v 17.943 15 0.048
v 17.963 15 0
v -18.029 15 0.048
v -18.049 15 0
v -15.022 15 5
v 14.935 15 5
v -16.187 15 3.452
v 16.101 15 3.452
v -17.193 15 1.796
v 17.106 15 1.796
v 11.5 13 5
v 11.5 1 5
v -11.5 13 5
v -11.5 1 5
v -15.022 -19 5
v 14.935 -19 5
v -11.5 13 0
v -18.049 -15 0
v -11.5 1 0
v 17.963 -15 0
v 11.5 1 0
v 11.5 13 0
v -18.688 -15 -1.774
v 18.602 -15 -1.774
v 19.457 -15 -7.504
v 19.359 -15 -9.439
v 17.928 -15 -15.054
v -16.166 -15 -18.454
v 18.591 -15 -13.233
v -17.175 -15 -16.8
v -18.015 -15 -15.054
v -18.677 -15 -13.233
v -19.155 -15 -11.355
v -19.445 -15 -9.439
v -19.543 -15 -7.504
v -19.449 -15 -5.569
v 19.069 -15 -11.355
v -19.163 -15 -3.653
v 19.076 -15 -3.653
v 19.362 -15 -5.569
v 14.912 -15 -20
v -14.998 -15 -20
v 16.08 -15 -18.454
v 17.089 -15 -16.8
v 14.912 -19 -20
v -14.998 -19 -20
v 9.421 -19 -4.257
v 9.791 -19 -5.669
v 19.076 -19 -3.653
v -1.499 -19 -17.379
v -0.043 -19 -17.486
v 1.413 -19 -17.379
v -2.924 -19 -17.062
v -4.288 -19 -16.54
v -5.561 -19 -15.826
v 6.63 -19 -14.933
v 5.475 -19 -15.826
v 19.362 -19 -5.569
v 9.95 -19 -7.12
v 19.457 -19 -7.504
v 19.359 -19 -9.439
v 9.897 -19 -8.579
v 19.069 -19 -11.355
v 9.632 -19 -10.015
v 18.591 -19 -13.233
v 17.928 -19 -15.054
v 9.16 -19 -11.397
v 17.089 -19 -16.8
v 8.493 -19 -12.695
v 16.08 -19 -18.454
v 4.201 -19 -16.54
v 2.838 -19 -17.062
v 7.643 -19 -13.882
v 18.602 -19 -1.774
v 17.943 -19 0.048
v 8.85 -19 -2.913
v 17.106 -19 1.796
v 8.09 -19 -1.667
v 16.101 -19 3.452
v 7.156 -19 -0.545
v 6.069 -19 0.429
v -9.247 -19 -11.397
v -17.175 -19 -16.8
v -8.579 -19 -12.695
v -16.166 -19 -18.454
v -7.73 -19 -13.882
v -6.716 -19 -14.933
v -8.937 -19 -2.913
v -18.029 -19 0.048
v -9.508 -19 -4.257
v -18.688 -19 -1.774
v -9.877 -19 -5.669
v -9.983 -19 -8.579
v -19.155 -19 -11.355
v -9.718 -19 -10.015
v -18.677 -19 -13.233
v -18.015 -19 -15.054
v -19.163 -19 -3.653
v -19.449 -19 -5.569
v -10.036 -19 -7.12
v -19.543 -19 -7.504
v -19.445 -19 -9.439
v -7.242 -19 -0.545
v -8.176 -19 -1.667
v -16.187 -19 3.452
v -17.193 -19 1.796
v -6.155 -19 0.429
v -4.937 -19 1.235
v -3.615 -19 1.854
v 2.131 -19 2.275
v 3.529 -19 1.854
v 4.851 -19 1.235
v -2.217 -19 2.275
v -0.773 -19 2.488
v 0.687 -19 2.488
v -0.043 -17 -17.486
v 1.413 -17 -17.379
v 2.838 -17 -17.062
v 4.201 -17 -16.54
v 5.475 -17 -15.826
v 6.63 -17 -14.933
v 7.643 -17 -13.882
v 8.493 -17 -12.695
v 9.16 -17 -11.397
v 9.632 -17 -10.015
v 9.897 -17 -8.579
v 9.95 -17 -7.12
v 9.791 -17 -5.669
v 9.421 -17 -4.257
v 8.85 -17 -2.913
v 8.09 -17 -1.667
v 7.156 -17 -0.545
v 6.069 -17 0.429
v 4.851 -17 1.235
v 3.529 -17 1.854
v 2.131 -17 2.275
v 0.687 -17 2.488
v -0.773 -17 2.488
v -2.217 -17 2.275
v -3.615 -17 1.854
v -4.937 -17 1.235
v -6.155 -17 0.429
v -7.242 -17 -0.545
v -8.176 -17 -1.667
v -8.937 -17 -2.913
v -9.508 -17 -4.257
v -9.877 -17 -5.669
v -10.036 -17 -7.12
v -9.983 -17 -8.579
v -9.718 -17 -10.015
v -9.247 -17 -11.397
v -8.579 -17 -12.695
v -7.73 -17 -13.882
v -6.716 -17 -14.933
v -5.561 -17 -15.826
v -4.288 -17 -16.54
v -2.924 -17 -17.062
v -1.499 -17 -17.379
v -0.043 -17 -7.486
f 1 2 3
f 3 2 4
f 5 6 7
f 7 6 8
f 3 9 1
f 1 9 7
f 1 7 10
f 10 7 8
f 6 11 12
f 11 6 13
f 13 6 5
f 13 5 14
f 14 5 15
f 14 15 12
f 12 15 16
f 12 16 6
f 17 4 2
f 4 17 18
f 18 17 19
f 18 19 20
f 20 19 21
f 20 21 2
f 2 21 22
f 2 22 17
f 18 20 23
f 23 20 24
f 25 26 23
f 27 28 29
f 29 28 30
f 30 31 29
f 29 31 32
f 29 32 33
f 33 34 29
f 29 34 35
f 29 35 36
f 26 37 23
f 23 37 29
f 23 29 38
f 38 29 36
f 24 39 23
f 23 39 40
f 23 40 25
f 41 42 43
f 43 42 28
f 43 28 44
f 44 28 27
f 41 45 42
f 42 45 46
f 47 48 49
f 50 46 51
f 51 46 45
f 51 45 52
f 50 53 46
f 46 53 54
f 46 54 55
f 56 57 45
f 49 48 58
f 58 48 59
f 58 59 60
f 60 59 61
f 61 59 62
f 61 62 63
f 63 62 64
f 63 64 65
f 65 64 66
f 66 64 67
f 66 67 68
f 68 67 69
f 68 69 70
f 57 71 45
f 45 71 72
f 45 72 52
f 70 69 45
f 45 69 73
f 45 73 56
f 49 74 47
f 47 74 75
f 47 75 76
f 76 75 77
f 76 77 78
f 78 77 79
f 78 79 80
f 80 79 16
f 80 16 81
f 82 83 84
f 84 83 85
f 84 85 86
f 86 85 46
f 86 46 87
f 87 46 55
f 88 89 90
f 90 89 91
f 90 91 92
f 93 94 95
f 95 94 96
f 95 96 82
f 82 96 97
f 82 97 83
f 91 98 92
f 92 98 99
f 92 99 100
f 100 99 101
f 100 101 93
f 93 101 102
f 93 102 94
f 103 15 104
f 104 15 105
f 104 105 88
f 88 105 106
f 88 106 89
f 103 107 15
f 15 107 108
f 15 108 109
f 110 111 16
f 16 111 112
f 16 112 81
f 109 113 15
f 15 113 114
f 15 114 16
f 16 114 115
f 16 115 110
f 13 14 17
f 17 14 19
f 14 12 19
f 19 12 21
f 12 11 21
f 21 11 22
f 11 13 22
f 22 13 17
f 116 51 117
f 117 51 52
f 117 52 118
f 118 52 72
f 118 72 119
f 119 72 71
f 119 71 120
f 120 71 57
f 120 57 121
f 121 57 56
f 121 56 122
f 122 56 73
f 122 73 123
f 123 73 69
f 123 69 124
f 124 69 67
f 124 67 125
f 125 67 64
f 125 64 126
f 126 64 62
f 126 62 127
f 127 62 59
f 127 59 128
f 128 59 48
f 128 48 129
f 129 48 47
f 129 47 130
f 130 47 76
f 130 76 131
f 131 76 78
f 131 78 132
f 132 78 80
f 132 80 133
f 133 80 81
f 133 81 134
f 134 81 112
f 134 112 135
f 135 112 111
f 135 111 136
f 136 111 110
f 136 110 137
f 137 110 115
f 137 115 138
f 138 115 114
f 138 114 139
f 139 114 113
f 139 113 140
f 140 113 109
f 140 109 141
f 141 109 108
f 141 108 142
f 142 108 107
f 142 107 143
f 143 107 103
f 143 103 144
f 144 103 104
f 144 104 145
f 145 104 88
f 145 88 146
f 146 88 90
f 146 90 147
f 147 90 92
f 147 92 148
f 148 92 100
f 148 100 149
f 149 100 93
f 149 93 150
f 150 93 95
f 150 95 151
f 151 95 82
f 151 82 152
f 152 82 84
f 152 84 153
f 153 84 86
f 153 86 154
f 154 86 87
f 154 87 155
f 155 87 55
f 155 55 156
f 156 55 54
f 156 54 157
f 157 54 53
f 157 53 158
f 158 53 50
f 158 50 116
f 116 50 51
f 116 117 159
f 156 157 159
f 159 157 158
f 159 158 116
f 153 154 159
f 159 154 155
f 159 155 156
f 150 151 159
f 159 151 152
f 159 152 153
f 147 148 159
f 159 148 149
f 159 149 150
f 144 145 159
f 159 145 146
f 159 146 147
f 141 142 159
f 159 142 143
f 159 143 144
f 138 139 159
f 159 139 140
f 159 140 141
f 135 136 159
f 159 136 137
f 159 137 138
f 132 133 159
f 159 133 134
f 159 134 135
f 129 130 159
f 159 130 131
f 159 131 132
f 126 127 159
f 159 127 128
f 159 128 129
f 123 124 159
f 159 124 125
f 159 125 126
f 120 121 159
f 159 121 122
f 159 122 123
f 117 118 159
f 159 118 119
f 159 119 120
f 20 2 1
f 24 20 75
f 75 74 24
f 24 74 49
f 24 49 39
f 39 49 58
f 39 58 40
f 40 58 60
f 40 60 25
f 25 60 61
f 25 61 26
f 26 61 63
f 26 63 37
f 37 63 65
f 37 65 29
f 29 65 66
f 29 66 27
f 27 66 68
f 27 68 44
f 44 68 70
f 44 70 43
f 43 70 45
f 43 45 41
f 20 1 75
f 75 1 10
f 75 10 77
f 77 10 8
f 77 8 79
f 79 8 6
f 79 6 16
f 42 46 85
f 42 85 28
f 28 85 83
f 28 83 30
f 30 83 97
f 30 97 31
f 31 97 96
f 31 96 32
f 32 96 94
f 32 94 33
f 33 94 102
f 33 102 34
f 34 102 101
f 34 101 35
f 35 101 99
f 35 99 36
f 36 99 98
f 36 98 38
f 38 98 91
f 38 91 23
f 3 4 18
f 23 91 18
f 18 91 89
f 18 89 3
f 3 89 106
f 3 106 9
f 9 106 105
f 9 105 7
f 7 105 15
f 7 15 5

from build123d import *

# Parameters (mm, degrees)
ESQUISSE1_W             = 40
ESQUISSE1_H             = 30
BOSS_EXTRU_1_DEPTH      = 5
ESQUISSE4_W             = 40
ESQUISSE4_H             = 25
BOSS_EXTRU_2_DEPTH      = 4
ESQUISSE5_W             = 23
ESQUISSE5_H             = 12
ENL_V_MAT_EXTRU_2_DEPTH = 5
ESQUISSE6_R             = 10
ENL_V_MAT_EXTRU_3_DEPTH = 2
ENL_V_START             = -34
ENL_V_MAT_EXTRU_4_DEPTH = 34


# Read off the part's stored shape, not the designer's step: Enlèv. mat.-Extru.4
with BuildPart() as part:
    # Esquisse1 → Boss.-Extru.1 (new body)
    with BuildSketch(Plane.XY):
        Rectangle(ESQUISSE1_W, ESQUISSE1_H)
    extrude(amount=BOSS_EXTRU_1_DEPTH)

    # Esquisse4 → Boss.-Extru.2 (add)
    with BuildSketch(Plane.XZ.offset(15)):
        with Locations((0, -7.5)):
            Rectangle(ESQUISSE4_W, ESQUISSE4_H)
    extrude(amount=BOSS_EXTRU_2_DEPTH)

    # Esquisse5 → Enlèv. mat.-Extru.2 (cut)
    with BuildSketch(Plane(origin=(0, 0, 0), x_dir=(-1, 0, 0), z_dir=(0, 0, -1))):
        with Locations((0, 7)):
            Rectangle(ESQUISSE5_W, ESQUISSE5_H)
    extrude(amount=-ENL_V_MAT_EXTRU_2_DEPTH, mode=Mode.SUBTRACT)

    # Esquisse6 → Enlèv. mat.-Extru.3 (cut)
    with BuildSketch(Plane.XZ.offset(19)):
        with Locations(Location((-0.043131573, -7.485697827, 0), (0, 0, 270))):
            Circle(ESQUISSE6_R)
    extrude(amount=-ENL_V_MAT_EXTRU_3_DEPTH, mode=Mode.SUBTRACT)

    # Enlèv. mat.-Extru.4 outline → Enlèv. mat.-Extru.4 (cut)
    with BuildSketch(Plane.XZ.offset(19).offset(ENL_V_START)):
        with BuildLine():
            ThreePointArc((14.935431434, 5), (19.456859524, -7.504332113), (14.911541313, -20))
            Line((14.911541313, -20), (20, -20))
            Line((20, -20), (20, 5))
            Line((20, 5), (14.935431434, 5))
        make_face()
        with BuildLine():
            Line((-20, -20), (-14.997804459, -20))
            ThreePointArc((-14.997804459, -20), (-19.543122669, -7.504332113), (-15.02169458, 5))
            Line((-15.02169458, 5), (-20, 5))
            Line((-20, 5), (-20, -20))
        make_face()
    extrude(amount=ENL_V_MAT_EXTRU_4_DEPTH, mode=Mode.SUBTRACT)


solid = part.part
